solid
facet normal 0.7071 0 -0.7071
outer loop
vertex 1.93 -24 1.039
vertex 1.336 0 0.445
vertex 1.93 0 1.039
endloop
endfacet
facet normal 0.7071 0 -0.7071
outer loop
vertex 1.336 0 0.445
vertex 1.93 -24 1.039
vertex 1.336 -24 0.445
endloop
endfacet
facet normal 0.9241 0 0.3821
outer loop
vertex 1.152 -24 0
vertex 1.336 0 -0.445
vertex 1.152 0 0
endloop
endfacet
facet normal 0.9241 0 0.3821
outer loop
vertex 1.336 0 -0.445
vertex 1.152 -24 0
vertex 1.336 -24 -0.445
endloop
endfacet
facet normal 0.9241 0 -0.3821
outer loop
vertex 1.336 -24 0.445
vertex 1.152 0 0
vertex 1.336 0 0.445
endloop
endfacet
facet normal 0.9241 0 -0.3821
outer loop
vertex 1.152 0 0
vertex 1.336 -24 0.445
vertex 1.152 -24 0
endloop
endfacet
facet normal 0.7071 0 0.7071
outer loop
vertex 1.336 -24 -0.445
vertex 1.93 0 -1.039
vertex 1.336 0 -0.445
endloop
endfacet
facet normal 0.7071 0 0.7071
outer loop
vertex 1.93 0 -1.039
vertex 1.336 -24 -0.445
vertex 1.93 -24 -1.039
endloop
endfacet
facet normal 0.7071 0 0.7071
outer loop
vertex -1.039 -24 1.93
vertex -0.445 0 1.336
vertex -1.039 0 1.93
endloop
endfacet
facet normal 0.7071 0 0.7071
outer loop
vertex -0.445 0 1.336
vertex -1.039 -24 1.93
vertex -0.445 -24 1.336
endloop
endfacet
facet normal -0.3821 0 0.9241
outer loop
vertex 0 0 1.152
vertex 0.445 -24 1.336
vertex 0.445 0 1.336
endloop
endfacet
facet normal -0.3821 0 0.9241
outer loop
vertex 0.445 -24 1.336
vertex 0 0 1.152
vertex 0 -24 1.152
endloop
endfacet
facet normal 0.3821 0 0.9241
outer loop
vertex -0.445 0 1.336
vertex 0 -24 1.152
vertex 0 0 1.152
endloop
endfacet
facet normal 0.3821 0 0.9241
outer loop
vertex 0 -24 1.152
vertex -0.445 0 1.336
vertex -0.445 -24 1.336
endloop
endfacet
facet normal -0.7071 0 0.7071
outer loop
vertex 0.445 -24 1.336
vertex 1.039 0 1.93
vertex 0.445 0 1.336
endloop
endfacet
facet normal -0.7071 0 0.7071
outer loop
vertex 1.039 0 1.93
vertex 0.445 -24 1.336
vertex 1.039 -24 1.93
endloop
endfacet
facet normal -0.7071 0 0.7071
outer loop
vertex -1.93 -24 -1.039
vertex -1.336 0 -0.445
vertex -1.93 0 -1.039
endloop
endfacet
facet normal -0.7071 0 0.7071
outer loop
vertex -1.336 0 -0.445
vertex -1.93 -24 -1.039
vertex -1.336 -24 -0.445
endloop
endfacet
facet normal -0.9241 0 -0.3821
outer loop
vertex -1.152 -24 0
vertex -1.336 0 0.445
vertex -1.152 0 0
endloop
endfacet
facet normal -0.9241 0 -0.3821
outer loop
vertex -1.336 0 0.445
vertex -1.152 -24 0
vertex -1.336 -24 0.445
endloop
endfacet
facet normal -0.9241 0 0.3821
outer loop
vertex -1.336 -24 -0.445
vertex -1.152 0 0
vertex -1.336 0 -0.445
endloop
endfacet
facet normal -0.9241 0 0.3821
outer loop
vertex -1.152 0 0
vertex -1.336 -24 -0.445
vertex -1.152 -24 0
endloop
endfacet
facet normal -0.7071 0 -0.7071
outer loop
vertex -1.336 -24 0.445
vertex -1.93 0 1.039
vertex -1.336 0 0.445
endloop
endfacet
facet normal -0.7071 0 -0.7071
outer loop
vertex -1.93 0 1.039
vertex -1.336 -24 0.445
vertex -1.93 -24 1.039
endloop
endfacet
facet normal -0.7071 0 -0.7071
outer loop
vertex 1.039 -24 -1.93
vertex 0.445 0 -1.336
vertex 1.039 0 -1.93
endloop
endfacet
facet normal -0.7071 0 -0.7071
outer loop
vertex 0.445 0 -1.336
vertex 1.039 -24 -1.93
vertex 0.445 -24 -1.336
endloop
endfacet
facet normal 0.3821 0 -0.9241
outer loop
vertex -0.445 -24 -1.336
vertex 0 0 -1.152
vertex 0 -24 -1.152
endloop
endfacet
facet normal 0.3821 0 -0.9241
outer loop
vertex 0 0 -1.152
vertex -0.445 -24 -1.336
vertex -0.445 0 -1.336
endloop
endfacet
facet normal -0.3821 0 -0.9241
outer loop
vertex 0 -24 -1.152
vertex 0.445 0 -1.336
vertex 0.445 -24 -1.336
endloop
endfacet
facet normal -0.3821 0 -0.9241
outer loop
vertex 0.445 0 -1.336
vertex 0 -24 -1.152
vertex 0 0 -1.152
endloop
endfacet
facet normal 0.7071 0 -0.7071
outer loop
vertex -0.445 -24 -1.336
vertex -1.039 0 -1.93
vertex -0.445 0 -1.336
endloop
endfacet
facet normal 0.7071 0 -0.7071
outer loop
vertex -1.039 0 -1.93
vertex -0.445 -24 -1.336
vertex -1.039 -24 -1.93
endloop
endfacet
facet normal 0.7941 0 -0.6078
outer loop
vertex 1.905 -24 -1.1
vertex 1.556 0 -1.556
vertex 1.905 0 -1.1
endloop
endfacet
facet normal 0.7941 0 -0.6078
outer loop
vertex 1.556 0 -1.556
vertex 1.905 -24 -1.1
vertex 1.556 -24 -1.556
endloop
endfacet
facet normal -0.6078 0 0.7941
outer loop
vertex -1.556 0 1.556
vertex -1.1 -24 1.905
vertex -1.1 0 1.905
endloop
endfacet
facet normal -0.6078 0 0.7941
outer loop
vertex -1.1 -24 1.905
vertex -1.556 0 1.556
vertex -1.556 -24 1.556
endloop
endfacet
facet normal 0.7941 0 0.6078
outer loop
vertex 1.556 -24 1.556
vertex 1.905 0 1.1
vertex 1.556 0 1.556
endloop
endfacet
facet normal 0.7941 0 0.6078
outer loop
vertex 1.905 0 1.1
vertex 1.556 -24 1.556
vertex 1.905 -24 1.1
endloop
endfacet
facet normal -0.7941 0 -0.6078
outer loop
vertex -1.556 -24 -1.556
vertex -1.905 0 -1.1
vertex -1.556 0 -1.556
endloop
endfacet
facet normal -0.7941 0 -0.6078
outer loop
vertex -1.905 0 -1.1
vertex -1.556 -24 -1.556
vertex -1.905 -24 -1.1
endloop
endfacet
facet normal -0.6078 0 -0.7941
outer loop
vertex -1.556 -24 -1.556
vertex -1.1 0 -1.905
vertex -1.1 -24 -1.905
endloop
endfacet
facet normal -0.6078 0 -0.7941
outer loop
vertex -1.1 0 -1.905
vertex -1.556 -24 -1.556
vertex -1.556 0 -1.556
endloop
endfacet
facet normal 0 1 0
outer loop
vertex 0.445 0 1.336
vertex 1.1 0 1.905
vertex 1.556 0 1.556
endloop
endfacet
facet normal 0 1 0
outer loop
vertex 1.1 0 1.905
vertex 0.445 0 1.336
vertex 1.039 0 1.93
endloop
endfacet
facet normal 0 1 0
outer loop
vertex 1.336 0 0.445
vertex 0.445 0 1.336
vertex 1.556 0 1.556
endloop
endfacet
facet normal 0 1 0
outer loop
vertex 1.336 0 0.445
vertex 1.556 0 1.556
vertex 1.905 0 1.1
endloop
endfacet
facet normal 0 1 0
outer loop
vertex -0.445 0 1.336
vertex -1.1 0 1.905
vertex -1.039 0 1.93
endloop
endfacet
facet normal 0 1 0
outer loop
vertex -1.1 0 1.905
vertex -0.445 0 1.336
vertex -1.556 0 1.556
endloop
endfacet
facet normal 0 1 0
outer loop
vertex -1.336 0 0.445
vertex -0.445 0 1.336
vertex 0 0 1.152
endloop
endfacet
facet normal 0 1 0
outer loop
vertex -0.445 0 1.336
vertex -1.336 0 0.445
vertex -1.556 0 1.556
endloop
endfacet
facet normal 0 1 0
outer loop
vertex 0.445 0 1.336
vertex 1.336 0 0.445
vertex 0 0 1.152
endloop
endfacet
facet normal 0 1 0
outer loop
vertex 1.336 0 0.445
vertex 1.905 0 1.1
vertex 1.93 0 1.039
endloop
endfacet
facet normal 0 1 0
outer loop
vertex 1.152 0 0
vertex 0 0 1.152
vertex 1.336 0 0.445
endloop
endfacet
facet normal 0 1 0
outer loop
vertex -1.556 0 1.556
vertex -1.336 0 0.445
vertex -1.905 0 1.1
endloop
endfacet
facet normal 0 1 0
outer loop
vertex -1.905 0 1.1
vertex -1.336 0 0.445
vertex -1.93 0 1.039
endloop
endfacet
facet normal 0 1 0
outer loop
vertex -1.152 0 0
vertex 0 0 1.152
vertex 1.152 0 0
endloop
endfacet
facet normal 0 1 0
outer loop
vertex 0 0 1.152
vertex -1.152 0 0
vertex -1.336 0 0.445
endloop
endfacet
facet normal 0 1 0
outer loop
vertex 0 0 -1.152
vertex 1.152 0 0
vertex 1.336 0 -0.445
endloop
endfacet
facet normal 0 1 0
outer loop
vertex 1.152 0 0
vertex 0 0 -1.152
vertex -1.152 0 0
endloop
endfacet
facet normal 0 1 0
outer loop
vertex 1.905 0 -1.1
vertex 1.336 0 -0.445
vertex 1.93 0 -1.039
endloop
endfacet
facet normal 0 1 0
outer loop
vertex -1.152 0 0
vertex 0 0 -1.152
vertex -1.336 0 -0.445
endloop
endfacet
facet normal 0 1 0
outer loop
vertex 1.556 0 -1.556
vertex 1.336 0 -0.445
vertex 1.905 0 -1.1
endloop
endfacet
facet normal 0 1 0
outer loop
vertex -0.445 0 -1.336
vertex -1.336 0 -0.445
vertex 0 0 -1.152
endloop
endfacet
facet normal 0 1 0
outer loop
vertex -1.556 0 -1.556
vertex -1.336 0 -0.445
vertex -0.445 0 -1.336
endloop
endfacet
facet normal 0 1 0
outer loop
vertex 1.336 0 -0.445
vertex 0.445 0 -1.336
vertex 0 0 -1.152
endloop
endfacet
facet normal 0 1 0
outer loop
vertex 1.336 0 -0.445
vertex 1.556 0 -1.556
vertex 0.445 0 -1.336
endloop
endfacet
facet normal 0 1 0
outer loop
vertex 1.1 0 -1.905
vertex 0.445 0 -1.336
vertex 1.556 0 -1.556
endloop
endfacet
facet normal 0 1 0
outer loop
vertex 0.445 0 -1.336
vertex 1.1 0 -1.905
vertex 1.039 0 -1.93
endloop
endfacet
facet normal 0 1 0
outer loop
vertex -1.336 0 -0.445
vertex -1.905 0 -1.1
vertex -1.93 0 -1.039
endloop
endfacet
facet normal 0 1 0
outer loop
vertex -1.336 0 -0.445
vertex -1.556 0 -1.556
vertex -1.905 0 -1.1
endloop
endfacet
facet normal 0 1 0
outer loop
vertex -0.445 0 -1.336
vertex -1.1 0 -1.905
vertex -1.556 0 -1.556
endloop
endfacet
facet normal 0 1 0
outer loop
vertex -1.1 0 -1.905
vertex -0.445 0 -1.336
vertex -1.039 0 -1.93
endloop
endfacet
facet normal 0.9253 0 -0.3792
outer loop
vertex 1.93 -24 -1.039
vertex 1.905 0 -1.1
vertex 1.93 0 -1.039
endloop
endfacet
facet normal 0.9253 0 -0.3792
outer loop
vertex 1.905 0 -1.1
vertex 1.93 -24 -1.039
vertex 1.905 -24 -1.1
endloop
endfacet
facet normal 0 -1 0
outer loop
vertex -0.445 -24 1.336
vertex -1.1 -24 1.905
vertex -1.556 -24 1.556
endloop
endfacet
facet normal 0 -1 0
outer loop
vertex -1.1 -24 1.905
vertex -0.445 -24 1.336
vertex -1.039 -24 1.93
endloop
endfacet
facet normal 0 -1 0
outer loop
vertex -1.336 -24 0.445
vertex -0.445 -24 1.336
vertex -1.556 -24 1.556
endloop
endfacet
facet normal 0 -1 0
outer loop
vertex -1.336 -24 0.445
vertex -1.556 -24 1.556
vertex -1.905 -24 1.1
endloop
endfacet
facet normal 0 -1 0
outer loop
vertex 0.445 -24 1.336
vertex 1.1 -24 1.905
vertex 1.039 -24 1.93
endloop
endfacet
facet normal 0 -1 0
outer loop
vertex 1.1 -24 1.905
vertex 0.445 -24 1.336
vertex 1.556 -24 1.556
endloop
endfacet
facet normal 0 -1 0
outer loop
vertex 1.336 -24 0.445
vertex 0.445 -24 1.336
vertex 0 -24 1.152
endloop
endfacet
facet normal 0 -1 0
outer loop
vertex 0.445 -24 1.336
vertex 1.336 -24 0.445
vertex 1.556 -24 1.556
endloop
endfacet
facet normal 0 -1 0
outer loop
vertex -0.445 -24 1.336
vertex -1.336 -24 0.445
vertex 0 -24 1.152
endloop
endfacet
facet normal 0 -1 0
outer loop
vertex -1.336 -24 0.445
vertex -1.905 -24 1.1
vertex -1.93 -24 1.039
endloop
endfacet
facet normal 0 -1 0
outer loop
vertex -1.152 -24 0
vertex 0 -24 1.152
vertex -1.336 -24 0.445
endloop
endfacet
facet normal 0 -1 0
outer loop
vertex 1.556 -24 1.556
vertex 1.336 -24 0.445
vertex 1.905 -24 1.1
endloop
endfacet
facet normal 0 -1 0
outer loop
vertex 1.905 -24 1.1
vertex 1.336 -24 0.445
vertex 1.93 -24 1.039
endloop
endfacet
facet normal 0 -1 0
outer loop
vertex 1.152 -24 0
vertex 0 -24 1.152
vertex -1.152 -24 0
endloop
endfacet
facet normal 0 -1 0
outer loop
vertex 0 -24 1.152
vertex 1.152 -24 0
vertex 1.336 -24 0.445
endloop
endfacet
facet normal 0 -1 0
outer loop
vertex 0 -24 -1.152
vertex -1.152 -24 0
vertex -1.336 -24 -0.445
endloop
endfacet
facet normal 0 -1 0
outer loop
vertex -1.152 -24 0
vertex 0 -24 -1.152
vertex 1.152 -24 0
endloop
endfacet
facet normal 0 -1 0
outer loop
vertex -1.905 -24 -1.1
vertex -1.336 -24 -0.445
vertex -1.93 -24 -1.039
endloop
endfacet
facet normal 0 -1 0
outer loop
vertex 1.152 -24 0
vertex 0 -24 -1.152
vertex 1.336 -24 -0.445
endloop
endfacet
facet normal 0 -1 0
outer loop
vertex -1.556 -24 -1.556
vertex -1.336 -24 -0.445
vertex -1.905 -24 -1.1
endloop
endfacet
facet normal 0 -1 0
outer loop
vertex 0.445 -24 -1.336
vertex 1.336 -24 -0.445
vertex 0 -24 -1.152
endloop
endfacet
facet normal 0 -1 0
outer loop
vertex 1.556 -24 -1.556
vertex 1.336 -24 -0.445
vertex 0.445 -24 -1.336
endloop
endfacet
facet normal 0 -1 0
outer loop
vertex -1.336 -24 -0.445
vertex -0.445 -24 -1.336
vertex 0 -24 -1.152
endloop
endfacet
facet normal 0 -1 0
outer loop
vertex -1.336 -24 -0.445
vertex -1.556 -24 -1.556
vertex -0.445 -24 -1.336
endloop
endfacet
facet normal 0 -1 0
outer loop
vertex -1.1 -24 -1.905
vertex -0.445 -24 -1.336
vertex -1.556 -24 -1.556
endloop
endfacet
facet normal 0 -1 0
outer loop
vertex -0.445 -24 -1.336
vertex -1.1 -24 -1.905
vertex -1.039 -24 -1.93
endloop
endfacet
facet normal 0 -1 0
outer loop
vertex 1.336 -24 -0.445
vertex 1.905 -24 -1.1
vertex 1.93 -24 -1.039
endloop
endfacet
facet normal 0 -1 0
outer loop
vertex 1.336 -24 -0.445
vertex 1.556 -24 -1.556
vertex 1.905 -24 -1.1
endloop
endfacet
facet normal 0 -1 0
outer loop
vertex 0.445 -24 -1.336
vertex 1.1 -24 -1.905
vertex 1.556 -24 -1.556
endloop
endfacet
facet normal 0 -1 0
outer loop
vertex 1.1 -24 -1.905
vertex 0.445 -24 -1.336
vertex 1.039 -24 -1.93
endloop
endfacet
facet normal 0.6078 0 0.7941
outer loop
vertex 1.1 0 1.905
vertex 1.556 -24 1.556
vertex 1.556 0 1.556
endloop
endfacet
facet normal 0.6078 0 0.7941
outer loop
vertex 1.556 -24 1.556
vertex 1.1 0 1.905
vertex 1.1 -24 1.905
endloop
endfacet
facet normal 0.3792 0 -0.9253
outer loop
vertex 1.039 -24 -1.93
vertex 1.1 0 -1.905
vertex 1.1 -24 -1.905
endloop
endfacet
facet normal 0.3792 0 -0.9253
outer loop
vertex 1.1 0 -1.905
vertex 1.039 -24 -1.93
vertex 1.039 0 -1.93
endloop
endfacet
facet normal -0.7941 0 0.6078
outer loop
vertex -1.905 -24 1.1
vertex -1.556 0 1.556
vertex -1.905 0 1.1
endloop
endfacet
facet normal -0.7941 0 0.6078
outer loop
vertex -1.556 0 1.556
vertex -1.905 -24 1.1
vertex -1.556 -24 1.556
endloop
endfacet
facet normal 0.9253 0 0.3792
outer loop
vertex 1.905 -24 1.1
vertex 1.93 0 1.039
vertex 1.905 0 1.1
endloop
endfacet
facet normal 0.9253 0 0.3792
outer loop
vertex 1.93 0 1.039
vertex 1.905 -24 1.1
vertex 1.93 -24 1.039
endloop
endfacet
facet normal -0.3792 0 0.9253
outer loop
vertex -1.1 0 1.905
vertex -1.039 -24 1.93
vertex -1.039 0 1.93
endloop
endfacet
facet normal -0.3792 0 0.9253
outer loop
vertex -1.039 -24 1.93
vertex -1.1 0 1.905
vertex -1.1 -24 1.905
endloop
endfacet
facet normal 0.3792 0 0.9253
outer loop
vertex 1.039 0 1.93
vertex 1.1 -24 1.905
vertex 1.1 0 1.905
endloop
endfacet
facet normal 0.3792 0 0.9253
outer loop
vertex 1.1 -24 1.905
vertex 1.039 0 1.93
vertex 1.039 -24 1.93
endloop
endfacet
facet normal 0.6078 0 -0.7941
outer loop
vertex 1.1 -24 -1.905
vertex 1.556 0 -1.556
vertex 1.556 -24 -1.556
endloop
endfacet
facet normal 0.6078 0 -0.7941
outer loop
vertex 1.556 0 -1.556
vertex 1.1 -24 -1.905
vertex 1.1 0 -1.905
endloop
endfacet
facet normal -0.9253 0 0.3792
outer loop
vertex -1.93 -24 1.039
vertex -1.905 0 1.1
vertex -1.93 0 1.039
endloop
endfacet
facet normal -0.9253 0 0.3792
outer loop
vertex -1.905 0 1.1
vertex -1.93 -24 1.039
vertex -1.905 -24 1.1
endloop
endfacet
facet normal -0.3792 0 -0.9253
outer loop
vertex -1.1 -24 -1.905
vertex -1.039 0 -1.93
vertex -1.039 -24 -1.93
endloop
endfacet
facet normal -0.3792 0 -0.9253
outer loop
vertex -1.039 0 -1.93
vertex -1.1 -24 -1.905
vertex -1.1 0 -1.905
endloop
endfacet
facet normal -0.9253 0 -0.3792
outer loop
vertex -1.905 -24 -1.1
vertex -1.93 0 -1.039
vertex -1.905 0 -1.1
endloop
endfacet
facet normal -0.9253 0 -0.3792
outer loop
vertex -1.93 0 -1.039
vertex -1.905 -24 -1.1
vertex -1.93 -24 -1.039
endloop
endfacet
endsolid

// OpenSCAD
// file: ../lego_parameters.scad
/*
Parametric LEGO Block Parameters

Published at
    http://www.thingiverse.com/thing:2303714
Maintained at
    https://github.com/paulirotta/parametric_lego
See also the related files
    LEGO Sign Generator - https://www.thingiverse.com/thing:2546028
    LEGO Enclosure Generator - https://www.thingiverse.com/thing:2544197


By Paul Houghton
Twitter: @mobile_rat
Email: paulirotta@gmail.com
Blog: https://medium.com/@paulhoughton

Creative Commons Attribution ShareAlike NonCommercial License
    https://creativecommons.org/licenses/by-sa/4.0/legalcode

Design work kindly sponsored by
    http://futurice.com

Import this into other design files to set baseline constants:
    include <lego_parameters.scad>
*/

/* [LEGO Options] */

// What type of object to generate: 1=>block, 2=>block without top knobs, 3=>block without bottom connector, 4=> block with increased bottom airflow
mode=1;

// Length of the block (LEGO knob count)
l = 3; 

// Width of the block (LEGO knob count)
w = 3;

// Height of the block (LEGO brick layer count)
h = 1;

// Top connector size tweak => + = more tight fit, -0.04 for PLA, 0 for ABS, 0.07 for NGEN
top_tweak = 0.06;

// Bottom connector size tweak => + = more tight fit, 0.04 for PLA, 0 for ABS, -0.01 NGEN
bottom_tweak = -0.03;

// Number of facets to form a circle (big numbers are more round which affects fit, but may take a long time to render)
fn=64;

// Place holes in the corners of the panel for mountings screws (0=>no holes, 1=>holes)
bolt_holes=0;

// Clearance space on the outer surface of bricks
skin = 0; 

// Height and depth of a line etched in the side of multi-layer block sets (0 to disable)
layer_ridge = 0.1;

// Depth of a line etched in the side of multi-layer block sets
layer_ridge_depth = 0.3;

// Size of the connectors
knob_radius=2.4;

// Height of the connectors including any bevel (1.8 is Lego standard, longer gives a stronger hold which helps since 3D prints are less precise)
knob_height=2.4;

// Height of the easy connect slope near connector top (0 to disable is standard a slightly faster to generate the model, a bigger value such as 0.3 may help if you adjust a tight fit but most printers' slicers will simplify away most usable bevels)
knob_bevel=0.4;

// Size of the small flexture cavity inside each connector
knob_cutout_radius=1.25;

// Distance below knob top surface and the internal cutout
knob_top_thickness=1;

// Height of the hole beneath each knob
knob_cutout_height=4.55;

// Size of a hole in the top of each knob to keep the cutout as part of the outside surface (slicer-friendly if knob_slice_count=0). Use a larger number for air circulation or to drain resin from the cutout, or 0 to disable.
knob_cutout_airhole_radius=0.01;

// Number of side to simulate a circle in the air hole and (smaller numbers render faster and are usually sufficient)
airhole_fn=16;

// Number of flexture cuts across the top of the knob
knob_slice_count=4;

// Width of flexture cuts accross the top of the knob
knob_slice_width=0.15;

// Length of the slice the knob from inside towards the edge
knob_slice_length_ratio=0.8;

// Depth which connectors may press into part bottom
socket_height=8.2;

// Bottom connector assistance ring size
ring_radius=3.25;

// Bottom connector assistance ring thickness
ring_thickness=0.6;

// Width of horizontal surface strengthening slats (usually between the bottom rings)
stiffener_width=0.6;

// Height of horizontal surface strengthening slats (appears between the bottom rings and usually half of socket_height)
stiffener_height=2.4;

// Distance from inside walls which small stiffeners protrude inwards
side_stiffener_thickness=0.2;

// Basic unit horizonal size of LEGO
block_width=8;

// Basic unit vertial size of LEGO
block_height=9.6;

// Thickness of the solid outside surface of LEGO
block_shell=1.3; // thickness
// file: PELA-technic-axle.scad
/*
PELA Parametric LEGO-compatible Technic Axle

PELA Parametric Blocks - 3D Printed LEGO-compatible parametric blocks

Published at https://PELAblocks.org

By Paul Houghton
Twitter: @mobile_rat
Email: paulirotta@gmail.com
Blog: https://medium.com/@paulhoughton

Creative Commons Attribution-ShareAlike 4.0 International License
    https://creativecommons.org/licenses/by-sa/4.0/legalcode

Open source design, Powered By Futurice. Come work with the best.
    https://www.futurice.com/
*/

include <../style.scad>
include <../print-parameters.scad>
use <../PELA-block.scad>

/* [Technic Axle] */

// Show the inside structure [mm]
cut_line = 0;

// Printing material
material = 0; // [0:PLA, 1:ABS, 2:PET, 3:Biofila Silk, 4:Pro1, 5:NGEN, 6:NGEN FLEX, 7:Bridge Nylon, 8:TPU95, 9:TPU85/NinjaFlex]

// Is the nozzle >= 0.5mm? If so, some features are larger to make printing easier (and slightly slower)
large_nozzle = true;

// Axle length [blocks]
l = 3;

// An axle which fits loosely in a technic bearing hole [mm]
axle_radius = 2.2;

// Size of the hollow inside an axle [mm]
center_radius = 1.1;



///////////////////////////////
// DISPLAY
///////////////////////////////

axle(material=material, large_nozzle=large_nozzle, cut_line=cut_line, l=l, axle_radius=axle_radius, center_radius=center_radius);
  



/////////////////////////////////////
// MODULES
/////////////////////////////////////

module axle(material=material, large_nozzle=large_nozzle, cut_line=cut_line, l=l, axle_radius=axle_radius, center_radius=center_radius) {

    axle_length = block_width(l);

    difference() {
        cylinder(r=axle_radius, h=axle_length);

        union() {
            translate([0, 0, -defeather]) {
                cylinder(r=center_radius, h=axle_length + 2*defeather);
            }

            translate([-axle_radius, -axle_radius, 0]) {
                cut_space(material=material, large_nozzle=large_nozzle, l=2, cut_line=cut_line, h=l, block_width=block_width, block_height=block_height, knob_height=knob_height);
            }
        }
    }
}
// file: ../print-parameters.scad
/*
Parametric LEGO Print Tuning Parameters

Published at
    http://www.thingiverse.com/thing:2303714
Maintained at
    https://github.com/paulirotta/parametric_lego
See also the related files
    LEGO Sign Generator - https://www.thingiverse.com/thing:2546028
    LEGO Enclosure Generator - https://www.thingiverse.com/thing:2544197


By Paul Houghton
Twitter: @mobile_rat
Email: paulirotta@gmail.com
Blog: https://medium.com/@paulhoughton

Creative Commons Attribution ShareAlike NonCommercial License
    https://creativecommons.org/licenses/by-sa/4.0/legalcode

Design work kindly sponsored by
    http://futurice.com

Imported automatically into other design files when you include lego_parameters:
    include <lego_parameters.scad>
 

INSTRUCTIONS
============
1. Test print lego_calibration.scad

2. Choose a fit with real LEGO

3. Enter those  numbers here. Most commonly you only adjust the top_tweak, bottom_tweak
   and side_connector_tweak numbers to match for your current use case and
   material/printer/slicer settings. Add comment to this file to help remember what you
   have calibrated now and in the past.

4. Print a couple of 4x4 blocks with these adjusted parameters

5. Confirm your calibration fit with real LEGO and between two printed blocks.

6. All other models in this set will automatically now be adjusted to use your calibration numbers.


SUGGESTIONS
===========
- Don't waste time- use high precision, injection-moulded LEGO parts when they are suitable and available.

- Layer height is not paricularly important, you can use your "standard" setting.

- If needed for a good snap fit, slow down or make similar adjustments to show fine details
  and strong inter-layer adhesion (especially with flexible materials).

- Some printing materials are slippery, not very flexible, or subject to small chips breaking off. This
  can affect the fit and part lifeime. In such cases, look at other parameters such as knob_height and
  geometric flexture adjustments to avoid making your calibration is more tight than needed for your
  application.

- Smaller nozzles give better results. The models are adjusted to work on FFF nozzles up to about 0.6mm
  diameter.
  
- Be patient. You can achieve a great fit and make many things with blocks. 
*/


/* [3D Printing Filament Adjustments] */

// Switch between flexible and rigid material geometry
flexible_material = true;

/* [3D Printing Top Connector Adjustments] */

// Top knob size adjustment (larger is a stiffer fit, add in multiples of 0.01mm as determined from your calibration-block print)
top_tweak = 0;

// Size of the top connectors (note that some plastics are more slippery or brittle than ABS and this may negatively affect results or part lifetime, the value below is tuned for Taz 6 with 0.5 nozzle, Lulzbot Cura default and NGEN)
knob_radius=2.45 + 0.11 + top_tweak;

// Height of the connectors (1.8 is Lego standard, 2 may give a stronger hold while still maintaining compatibility)
knob_height=flexible_material ? 9.6/3 : 1.8;

// Size of the small flexture cavity inside each knob (default is 1.4, set to 0 for flexible materials)
knob_flexture_radius=flexible_material ? 0.0 : 1.4;

// Height of the easy connect slope near connector top (0 to disable such as for flexible materials, a bigger value such as 0.1 may help ease a tightly tuned fit or compensate for overextrusion)
knob_bevel=flexible_material ? 0.3 : 0.0;


/* [3D Printing Bottom Connector Adjustments] */

// Bottom connector size adjustment (larger is a stiffer fit, add in multiples of 0.01mm as determined from your calibration-block print)
bottom_tweak = 0;

// Bottom connector flexture ring size (note that some plastics are more slippery or brittle than ABS and this may negatively affect results or part lifetime, the value below is tuned for Taz 6 with 0.5 nozzle, Lulzbot Cura default and NGEN)
ring_radius=3.35 + bottom_tweak;

// Bottom connector flexture ring size (note that some plastics are more slippery or brittle than ABS and this may negatively affect results or part lifetime, the value below is tuned for Taz 6 with 0.5 nozzle, Lulzbot Cura default and NGEN)
ring_thickness=0.6;

// Base distance which small stiffeners protrude inwards from outside shell edges of a block to hold the knobs of any block below
outside_lock_thickness=1.44 + bottom_tweak;

// Additional distance from outside lock and connector rings which small flexture-fit rims protrude inwards to grab the base of knobs for asymmetric side pressure to assist a snap fit
side_lock_thickness=0.02;


/* [3D Printing Side Connector Adjustments] */

// Side connector size adjustment (larger is a looser fit, add in multiples of 0.01mm as determined from your calibration-block print)
axle_hole_tweak = 0;

// Technic connector hole
axle_hole_radius = 2.45 + 0.02 + axle_hole_tweak;
// main file
/*
Parametric PELA LEGO-compatible technic cross-shaped rotational drive Axle

PELA Parametric Blocks - 3D Printed LEGO-compatible parametric blocks

By Paul Houghton
Twitter: @mobile_rat
Email: paulirotta@gmail.com
Blog: https://medium.com/@paulhoughton

Creative Commons Attribution-ShareAlike 4.0 International License
    https://creativecommons.org/licenses/by-sa/4.0/legalcode

Open source design, Powered By Futurice. Come work with the best.
    https://www.futurice.com/
*/

include <../style.scad>
include <../print-parameters.scad>
use <../PELA-block.scad>
use <PELA-technic-axle.scad>

/* [Technic Cross Axle] */

// Printing material
material = 0; // [0:PLA, 1:ABS, 2:PET, 3:Biofila Silk, 4:Pro1, 5:NGEN, 6:NGEN FLEX, 7:Bridge Nylon, 8:TPU95, 9:TPU85/NinjaFlex]

// Is the nozzle >= 0.5mm? If so, some features are larger to make printing easier (and slightly slower)
large_nozzle = true;

// Axle length [blocks]
l = 3;

// Outside radius of an axle which fits loosely in a technic bearing hole [mm]
axle_radius = 2.2;

// Size of the axle solid center before rounding [mm]
center_radius = (1/3)*axle_radius;

// Cross axle inside rounding radius [mm]
axle_rounding = 0.63;



///////////////////////////////
// DISPLAY
///////////////////////////////


cross_axle(material=material, large_nozzle=large_nozzle, cut_line=0, l=l, axle_rounding=axle_rounding, axle_radius=axle_radius, center_radius=center_radius);
    




/////////////////////////////////////
// MODULES
/////////////////////////////////////

module cross_axle(material=material, large_nozzle=large_nozzle, cut_line=0, l=l, axle_rounding=axle_rounding, axle_radius=axle_radius, center_radius=center_radius) {

    axle_length = block_width(l);

    rotate([90, 45, 0]) {
        difference() {
            axle(material=material, large_nozzle=large_nozzle, l=l, axle_radius=axle_radius, center_radius=0);
            
            axle_cross_negative_space(material=material, large_nozzle=large_nozzle, axle_length=axle_length, axle_rounding=axle_rounding, axle_radius=axle_radius);
        }
    }
}


// That which is cut away four times from a solid to create a cross axle
module axle_cross_negative_space(material=material, large_nozzle=large_nozzle, axle_length, axle_rounding=axle_rounding, axle_radius=axle_radius) {
    
    for (rot=[0:90:270]) {
        rotate([0, 0, rot]) {
            hull() {
                translate([axle_rounding*2, axle_rounding*2, -defeather]) {
                    cylinder(r=axle_rounding, h=axle_length+2*defeather);

                    translate([axle_radius, 0, 0]) {
                        cylinder(r=axle_rounding, h=axle_length+2*defeather);
                    }

                    translate([0, axle_radius, 0]) {
                        cylinder(r=axle_rounding, h=axle_length+2*defeather);
                    }
                }
            }
        }
    }
}
